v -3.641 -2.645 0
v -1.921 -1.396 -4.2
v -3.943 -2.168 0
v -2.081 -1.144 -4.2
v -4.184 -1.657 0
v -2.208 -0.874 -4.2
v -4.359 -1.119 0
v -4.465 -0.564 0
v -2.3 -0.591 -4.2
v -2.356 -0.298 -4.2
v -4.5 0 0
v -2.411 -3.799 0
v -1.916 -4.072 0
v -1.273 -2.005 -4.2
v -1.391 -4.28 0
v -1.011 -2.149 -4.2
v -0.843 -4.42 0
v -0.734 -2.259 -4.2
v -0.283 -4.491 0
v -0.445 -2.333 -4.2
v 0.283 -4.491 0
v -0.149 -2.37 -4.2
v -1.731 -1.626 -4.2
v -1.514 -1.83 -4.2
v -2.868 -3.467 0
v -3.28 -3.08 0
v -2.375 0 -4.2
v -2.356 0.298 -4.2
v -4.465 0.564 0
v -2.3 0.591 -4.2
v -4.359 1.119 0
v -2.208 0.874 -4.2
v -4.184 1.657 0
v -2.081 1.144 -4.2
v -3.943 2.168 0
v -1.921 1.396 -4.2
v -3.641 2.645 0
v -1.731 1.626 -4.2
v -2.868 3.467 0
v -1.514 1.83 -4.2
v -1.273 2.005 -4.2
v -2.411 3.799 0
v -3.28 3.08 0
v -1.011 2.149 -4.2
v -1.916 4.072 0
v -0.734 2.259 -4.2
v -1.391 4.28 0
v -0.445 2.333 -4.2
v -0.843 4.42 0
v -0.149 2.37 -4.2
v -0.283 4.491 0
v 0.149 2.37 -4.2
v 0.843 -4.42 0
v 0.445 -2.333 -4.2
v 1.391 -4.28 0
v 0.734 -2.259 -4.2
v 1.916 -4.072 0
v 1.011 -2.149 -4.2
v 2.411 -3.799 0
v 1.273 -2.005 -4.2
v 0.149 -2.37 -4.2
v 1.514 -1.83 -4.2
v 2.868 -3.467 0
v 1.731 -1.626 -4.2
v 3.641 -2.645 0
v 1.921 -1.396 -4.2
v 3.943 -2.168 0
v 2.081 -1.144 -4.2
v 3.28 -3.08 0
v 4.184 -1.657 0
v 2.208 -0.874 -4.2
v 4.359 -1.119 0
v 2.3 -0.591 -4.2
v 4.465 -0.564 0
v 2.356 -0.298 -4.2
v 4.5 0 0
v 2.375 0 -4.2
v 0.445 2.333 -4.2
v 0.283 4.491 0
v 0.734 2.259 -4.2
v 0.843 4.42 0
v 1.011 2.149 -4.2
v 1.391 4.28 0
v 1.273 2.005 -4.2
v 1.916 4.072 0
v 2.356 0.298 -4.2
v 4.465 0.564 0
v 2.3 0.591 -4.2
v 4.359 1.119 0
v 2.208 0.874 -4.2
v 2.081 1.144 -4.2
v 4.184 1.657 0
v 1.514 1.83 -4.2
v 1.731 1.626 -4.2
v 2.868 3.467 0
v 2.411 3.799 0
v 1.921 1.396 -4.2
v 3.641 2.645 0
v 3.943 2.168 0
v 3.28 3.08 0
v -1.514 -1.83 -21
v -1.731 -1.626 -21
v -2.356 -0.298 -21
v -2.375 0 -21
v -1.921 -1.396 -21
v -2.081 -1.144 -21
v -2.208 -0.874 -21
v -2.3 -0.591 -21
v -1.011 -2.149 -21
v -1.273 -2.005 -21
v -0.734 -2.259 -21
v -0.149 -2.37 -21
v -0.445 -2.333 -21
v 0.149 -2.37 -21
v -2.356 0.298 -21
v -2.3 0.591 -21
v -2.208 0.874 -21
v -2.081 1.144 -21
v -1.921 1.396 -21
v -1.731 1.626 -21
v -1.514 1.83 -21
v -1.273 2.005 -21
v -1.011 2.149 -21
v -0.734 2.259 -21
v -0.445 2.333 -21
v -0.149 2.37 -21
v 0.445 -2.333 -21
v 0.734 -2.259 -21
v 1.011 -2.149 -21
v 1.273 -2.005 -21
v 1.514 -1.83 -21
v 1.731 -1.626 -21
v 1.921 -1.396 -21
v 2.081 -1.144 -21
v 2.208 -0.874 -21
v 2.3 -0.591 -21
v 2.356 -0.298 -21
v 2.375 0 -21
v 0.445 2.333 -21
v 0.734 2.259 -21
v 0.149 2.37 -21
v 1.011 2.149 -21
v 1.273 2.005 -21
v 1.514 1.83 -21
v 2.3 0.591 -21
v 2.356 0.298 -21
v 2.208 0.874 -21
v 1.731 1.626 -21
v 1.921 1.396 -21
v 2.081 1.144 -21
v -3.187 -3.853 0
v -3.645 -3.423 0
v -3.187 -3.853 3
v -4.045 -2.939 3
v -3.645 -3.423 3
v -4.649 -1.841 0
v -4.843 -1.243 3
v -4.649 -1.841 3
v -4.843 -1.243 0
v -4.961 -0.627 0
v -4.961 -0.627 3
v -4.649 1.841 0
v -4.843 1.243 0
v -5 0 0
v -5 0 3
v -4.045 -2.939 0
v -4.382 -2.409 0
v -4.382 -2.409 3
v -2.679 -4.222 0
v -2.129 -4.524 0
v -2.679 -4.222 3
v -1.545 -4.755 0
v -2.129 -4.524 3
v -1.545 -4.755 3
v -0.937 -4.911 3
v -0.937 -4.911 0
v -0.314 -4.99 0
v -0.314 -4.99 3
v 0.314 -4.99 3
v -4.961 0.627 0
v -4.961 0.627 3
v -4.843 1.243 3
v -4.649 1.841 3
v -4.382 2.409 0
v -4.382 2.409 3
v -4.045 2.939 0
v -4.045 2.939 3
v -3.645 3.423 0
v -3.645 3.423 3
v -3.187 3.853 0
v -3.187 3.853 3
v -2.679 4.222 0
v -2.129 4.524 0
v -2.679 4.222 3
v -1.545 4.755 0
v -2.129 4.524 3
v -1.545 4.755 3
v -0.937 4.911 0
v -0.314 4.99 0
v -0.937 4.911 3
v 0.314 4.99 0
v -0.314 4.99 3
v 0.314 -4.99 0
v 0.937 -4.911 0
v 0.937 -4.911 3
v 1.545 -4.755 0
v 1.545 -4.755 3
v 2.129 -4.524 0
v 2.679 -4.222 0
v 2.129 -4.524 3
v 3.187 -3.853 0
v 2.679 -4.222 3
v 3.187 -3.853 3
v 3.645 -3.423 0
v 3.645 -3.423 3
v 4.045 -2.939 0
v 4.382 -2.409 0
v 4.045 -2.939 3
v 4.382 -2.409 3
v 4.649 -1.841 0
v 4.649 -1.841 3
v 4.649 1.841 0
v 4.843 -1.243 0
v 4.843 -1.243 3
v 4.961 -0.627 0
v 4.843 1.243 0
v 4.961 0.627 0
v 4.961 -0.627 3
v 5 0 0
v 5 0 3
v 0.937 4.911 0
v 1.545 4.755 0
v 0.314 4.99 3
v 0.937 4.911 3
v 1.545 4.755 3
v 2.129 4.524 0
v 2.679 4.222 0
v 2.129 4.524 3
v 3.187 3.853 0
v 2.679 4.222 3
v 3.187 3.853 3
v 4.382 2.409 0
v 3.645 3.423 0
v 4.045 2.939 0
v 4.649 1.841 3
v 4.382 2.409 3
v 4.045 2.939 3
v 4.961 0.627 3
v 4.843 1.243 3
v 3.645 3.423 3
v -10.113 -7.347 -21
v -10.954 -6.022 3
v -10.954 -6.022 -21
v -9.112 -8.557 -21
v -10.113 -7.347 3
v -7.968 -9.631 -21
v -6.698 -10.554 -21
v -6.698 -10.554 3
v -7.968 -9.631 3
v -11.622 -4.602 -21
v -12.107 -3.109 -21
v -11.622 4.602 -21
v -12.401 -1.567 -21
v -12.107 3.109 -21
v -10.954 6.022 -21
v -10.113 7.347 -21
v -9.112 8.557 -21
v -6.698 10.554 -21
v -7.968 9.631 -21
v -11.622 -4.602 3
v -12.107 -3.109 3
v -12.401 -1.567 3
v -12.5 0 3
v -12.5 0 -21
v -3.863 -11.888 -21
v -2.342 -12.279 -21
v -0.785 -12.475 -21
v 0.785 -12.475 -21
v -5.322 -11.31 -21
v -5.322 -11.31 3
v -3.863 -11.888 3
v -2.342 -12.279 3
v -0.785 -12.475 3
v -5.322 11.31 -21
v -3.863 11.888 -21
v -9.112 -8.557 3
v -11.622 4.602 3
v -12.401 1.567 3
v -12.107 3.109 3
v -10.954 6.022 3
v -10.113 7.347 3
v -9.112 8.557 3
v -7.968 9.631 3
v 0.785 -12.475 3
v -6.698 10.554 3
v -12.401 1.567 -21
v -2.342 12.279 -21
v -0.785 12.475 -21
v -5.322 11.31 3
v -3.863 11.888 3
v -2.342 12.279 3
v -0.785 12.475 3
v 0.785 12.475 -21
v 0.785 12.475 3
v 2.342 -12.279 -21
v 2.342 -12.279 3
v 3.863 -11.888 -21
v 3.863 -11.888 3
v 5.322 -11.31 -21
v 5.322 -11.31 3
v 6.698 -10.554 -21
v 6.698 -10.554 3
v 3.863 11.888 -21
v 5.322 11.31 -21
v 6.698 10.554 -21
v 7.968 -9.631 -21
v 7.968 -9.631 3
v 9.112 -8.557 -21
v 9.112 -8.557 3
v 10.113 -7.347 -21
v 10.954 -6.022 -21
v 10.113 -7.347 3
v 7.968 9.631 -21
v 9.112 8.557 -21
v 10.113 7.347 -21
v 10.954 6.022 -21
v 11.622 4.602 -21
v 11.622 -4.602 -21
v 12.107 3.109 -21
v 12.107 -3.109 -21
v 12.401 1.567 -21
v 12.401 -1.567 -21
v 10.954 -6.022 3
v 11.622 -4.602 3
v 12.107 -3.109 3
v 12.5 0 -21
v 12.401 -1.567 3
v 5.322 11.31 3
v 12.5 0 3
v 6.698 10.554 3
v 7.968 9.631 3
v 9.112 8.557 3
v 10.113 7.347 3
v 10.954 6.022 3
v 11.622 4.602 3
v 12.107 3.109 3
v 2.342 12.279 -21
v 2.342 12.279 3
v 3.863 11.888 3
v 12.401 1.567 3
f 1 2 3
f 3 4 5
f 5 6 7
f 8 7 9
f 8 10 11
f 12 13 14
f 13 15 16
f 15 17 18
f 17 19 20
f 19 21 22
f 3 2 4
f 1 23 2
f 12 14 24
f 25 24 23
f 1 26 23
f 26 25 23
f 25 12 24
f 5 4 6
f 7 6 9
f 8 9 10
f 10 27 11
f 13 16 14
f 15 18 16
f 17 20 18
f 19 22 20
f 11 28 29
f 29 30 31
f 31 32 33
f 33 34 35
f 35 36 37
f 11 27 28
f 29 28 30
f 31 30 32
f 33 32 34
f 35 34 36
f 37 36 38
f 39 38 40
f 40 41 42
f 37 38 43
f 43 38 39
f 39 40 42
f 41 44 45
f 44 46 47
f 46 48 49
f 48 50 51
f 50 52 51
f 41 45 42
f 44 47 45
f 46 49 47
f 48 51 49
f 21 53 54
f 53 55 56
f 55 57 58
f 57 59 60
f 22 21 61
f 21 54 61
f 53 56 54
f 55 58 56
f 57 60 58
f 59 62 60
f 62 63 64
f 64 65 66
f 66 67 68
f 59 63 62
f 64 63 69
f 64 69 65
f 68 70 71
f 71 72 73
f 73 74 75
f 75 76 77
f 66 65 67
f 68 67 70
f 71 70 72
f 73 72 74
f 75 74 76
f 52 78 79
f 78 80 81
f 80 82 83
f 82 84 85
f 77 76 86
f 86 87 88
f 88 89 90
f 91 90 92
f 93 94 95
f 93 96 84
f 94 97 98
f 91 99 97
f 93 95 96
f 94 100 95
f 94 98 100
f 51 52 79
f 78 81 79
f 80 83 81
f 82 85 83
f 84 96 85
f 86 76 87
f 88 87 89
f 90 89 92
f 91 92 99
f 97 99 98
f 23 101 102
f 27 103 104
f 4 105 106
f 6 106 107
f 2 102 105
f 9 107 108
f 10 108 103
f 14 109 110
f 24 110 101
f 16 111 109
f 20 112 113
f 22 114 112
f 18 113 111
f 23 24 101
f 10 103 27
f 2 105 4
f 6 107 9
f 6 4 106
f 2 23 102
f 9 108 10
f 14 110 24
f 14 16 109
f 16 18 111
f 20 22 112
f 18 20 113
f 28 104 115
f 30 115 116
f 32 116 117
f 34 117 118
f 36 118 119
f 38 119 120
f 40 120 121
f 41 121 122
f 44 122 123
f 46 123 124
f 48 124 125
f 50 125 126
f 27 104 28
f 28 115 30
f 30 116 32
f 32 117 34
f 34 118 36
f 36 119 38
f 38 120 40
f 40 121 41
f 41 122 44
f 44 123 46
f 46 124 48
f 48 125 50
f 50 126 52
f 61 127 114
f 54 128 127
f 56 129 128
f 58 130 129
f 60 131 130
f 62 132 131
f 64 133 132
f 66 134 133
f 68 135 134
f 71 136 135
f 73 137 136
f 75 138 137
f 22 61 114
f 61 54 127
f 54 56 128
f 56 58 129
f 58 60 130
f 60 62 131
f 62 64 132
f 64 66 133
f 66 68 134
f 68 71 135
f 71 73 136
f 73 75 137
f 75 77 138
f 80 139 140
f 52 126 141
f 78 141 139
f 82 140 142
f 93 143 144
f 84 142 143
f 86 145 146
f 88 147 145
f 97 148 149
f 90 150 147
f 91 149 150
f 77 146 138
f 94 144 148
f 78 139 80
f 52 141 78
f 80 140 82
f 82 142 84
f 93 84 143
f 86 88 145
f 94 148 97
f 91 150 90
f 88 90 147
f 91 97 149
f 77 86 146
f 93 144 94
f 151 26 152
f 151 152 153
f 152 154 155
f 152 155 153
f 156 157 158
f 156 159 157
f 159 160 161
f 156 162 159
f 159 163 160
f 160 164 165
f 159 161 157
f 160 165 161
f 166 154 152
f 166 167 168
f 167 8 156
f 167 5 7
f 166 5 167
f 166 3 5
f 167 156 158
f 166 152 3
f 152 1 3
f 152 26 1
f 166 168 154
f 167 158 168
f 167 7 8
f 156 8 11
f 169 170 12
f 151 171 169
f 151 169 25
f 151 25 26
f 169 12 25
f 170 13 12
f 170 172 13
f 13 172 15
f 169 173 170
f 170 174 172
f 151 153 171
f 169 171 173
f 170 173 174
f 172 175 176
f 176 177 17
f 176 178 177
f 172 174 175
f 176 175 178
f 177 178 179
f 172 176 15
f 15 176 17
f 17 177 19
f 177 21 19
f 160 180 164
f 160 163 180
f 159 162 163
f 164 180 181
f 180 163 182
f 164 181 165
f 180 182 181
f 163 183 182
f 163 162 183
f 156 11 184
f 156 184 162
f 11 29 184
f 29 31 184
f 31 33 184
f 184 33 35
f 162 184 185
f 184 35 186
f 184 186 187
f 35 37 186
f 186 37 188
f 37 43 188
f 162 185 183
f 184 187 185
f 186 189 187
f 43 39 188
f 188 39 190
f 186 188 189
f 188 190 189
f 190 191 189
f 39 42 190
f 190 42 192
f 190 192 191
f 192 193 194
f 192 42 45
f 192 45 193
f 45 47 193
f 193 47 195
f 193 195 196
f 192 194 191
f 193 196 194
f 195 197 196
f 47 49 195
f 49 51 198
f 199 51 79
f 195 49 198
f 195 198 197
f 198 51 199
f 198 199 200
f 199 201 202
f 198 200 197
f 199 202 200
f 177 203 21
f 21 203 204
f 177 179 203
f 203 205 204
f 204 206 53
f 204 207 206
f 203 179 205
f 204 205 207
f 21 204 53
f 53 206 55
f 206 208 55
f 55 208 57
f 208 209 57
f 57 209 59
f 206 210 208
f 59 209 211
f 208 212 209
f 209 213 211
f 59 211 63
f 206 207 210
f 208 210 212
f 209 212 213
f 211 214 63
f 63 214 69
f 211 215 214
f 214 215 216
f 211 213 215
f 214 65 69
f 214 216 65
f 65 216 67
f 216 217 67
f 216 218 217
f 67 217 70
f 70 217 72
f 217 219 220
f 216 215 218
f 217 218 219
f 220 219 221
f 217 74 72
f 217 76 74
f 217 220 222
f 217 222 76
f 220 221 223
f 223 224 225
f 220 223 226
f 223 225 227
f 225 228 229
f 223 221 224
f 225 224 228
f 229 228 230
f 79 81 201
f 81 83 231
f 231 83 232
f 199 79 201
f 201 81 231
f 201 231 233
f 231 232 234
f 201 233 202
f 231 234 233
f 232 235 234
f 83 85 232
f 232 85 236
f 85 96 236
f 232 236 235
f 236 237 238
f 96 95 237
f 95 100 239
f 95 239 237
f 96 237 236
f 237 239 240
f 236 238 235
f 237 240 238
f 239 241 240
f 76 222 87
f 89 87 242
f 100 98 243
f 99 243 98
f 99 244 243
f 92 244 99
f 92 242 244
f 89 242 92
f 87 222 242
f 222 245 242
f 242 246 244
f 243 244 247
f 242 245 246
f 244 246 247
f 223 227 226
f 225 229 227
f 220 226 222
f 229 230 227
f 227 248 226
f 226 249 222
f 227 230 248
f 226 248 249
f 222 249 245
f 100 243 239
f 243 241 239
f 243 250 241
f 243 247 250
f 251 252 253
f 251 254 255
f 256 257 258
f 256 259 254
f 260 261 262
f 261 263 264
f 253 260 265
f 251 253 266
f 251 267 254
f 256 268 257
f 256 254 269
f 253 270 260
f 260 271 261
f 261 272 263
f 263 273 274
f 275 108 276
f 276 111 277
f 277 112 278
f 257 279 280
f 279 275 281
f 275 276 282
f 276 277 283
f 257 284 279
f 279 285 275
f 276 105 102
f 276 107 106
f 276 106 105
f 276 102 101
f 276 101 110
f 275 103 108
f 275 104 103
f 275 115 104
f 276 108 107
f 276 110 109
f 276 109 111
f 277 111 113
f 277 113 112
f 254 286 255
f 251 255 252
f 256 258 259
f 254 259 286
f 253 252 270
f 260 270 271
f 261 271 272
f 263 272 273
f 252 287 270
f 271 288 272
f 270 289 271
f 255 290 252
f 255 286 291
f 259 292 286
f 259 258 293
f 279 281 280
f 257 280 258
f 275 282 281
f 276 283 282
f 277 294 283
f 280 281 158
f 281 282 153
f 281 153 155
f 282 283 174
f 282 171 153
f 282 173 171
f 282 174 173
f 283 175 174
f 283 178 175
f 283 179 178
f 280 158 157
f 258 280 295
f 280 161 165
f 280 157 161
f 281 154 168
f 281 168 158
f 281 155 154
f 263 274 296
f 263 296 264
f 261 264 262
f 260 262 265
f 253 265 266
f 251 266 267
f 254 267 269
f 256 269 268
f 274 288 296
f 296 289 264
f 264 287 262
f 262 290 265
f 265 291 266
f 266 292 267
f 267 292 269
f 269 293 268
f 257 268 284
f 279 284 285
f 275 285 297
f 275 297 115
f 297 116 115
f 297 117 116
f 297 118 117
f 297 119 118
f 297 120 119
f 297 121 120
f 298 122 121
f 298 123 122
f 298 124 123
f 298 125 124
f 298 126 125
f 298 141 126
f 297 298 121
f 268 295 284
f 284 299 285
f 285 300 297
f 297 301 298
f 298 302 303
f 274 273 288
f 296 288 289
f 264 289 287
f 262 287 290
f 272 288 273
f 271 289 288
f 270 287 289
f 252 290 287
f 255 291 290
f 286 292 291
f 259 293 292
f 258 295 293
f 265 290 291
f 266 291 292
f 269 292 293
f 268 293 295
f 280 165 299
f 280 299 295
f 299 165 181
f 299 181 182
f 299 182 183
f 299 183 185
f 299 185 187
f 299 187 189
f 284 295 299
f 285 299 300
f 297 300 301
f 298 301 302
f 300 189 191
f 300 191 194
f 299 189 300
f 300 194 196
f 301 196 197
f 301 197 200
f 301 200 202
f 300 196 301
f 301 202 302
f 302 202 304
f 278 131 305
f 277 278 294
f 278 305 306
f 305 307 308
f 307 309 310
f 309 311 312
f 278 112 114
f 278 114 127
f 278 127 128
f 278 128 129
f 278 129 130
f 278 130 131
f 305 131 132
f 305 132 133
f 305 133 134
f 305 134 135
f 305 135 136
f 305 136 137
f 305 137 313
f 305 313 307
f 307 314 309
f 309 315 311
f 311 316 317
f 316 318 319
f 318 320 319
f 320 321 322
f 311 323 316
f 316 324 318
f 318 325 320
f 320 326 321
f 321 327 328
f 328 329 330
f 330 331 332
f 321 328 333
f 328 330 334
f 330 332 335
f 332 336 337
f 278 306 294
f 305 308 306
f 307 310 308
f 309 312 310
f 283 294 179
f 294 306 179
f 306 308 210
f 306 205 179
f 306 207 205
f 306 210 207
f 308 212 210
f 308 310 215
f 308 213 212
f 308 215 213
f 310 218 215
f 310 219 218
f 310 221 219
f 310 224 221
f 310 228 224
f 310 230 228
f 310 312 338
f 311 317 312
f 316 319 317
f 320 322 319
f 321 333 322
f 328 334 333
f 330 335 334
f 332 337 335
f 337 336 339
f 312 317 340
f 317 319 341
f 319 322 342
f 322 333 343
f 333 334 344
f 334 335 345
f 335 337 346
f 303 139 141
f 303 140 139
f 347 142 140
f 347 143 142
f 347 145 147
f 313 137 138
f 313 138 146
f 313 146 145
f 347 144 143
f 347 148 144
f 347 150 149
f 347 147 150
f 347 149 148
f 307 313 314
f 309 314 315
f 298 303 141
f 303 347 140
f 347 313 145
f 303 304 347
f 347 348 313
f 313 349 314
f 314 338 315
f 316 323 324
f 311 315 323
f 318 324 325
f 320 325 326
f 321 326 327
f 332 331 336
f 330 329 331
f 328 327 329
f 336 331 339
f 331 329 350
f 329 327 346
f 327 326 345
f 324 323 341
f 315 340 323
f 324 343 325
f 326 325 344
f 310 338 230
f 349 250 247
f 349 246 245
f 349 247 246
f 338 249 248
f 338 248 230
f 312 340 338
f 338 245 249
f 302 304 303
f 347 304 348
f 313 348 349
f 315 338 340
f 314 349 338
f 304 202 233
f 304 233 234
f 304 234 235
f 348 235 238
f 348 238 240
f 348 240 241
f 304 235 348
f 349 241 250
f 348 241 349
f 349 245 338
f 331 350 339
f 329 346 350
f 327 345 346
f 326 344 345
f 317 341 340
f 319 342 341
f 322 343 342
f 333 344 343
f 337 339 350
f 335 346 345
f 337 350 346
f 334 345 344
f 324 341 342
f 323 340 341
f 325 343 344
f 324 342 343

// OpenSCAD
$fn = 50;


difference() {
	union() {
		translate(v = [0, 0, -21.0000000000]) {
			cylinder(h = 24, r = 12.5000000000);
		}
	}
	union() {
		translate(v = [0, 0, 0]) {
			rotate(a = [0, 0, 0]) {
				difference() {
					union() {
						translate(v = [0, 0, -24.0000000000]) {
							cylinder(h = 24, r = 2.2500000000);
						}
						translate(v = [0, 0, -4.2000000000]) {
							cylinder(h = 4.2000000000, r1 = 2.3750000000, r2 = 4.5000000000);
						}
						translate(v = [0, 0, -24.0000000000]) {
							cylinder(h = 24, r = 2.3750000000);
						}
						translate(v = [0, 0, -24.0000000000]) {
							cylinder(h = 24, r = 2.2500000000);
						}
					}
					union();
				}
			}
		}
		#cylinder(h = 3, r = 5.0000000000);
	}
}
